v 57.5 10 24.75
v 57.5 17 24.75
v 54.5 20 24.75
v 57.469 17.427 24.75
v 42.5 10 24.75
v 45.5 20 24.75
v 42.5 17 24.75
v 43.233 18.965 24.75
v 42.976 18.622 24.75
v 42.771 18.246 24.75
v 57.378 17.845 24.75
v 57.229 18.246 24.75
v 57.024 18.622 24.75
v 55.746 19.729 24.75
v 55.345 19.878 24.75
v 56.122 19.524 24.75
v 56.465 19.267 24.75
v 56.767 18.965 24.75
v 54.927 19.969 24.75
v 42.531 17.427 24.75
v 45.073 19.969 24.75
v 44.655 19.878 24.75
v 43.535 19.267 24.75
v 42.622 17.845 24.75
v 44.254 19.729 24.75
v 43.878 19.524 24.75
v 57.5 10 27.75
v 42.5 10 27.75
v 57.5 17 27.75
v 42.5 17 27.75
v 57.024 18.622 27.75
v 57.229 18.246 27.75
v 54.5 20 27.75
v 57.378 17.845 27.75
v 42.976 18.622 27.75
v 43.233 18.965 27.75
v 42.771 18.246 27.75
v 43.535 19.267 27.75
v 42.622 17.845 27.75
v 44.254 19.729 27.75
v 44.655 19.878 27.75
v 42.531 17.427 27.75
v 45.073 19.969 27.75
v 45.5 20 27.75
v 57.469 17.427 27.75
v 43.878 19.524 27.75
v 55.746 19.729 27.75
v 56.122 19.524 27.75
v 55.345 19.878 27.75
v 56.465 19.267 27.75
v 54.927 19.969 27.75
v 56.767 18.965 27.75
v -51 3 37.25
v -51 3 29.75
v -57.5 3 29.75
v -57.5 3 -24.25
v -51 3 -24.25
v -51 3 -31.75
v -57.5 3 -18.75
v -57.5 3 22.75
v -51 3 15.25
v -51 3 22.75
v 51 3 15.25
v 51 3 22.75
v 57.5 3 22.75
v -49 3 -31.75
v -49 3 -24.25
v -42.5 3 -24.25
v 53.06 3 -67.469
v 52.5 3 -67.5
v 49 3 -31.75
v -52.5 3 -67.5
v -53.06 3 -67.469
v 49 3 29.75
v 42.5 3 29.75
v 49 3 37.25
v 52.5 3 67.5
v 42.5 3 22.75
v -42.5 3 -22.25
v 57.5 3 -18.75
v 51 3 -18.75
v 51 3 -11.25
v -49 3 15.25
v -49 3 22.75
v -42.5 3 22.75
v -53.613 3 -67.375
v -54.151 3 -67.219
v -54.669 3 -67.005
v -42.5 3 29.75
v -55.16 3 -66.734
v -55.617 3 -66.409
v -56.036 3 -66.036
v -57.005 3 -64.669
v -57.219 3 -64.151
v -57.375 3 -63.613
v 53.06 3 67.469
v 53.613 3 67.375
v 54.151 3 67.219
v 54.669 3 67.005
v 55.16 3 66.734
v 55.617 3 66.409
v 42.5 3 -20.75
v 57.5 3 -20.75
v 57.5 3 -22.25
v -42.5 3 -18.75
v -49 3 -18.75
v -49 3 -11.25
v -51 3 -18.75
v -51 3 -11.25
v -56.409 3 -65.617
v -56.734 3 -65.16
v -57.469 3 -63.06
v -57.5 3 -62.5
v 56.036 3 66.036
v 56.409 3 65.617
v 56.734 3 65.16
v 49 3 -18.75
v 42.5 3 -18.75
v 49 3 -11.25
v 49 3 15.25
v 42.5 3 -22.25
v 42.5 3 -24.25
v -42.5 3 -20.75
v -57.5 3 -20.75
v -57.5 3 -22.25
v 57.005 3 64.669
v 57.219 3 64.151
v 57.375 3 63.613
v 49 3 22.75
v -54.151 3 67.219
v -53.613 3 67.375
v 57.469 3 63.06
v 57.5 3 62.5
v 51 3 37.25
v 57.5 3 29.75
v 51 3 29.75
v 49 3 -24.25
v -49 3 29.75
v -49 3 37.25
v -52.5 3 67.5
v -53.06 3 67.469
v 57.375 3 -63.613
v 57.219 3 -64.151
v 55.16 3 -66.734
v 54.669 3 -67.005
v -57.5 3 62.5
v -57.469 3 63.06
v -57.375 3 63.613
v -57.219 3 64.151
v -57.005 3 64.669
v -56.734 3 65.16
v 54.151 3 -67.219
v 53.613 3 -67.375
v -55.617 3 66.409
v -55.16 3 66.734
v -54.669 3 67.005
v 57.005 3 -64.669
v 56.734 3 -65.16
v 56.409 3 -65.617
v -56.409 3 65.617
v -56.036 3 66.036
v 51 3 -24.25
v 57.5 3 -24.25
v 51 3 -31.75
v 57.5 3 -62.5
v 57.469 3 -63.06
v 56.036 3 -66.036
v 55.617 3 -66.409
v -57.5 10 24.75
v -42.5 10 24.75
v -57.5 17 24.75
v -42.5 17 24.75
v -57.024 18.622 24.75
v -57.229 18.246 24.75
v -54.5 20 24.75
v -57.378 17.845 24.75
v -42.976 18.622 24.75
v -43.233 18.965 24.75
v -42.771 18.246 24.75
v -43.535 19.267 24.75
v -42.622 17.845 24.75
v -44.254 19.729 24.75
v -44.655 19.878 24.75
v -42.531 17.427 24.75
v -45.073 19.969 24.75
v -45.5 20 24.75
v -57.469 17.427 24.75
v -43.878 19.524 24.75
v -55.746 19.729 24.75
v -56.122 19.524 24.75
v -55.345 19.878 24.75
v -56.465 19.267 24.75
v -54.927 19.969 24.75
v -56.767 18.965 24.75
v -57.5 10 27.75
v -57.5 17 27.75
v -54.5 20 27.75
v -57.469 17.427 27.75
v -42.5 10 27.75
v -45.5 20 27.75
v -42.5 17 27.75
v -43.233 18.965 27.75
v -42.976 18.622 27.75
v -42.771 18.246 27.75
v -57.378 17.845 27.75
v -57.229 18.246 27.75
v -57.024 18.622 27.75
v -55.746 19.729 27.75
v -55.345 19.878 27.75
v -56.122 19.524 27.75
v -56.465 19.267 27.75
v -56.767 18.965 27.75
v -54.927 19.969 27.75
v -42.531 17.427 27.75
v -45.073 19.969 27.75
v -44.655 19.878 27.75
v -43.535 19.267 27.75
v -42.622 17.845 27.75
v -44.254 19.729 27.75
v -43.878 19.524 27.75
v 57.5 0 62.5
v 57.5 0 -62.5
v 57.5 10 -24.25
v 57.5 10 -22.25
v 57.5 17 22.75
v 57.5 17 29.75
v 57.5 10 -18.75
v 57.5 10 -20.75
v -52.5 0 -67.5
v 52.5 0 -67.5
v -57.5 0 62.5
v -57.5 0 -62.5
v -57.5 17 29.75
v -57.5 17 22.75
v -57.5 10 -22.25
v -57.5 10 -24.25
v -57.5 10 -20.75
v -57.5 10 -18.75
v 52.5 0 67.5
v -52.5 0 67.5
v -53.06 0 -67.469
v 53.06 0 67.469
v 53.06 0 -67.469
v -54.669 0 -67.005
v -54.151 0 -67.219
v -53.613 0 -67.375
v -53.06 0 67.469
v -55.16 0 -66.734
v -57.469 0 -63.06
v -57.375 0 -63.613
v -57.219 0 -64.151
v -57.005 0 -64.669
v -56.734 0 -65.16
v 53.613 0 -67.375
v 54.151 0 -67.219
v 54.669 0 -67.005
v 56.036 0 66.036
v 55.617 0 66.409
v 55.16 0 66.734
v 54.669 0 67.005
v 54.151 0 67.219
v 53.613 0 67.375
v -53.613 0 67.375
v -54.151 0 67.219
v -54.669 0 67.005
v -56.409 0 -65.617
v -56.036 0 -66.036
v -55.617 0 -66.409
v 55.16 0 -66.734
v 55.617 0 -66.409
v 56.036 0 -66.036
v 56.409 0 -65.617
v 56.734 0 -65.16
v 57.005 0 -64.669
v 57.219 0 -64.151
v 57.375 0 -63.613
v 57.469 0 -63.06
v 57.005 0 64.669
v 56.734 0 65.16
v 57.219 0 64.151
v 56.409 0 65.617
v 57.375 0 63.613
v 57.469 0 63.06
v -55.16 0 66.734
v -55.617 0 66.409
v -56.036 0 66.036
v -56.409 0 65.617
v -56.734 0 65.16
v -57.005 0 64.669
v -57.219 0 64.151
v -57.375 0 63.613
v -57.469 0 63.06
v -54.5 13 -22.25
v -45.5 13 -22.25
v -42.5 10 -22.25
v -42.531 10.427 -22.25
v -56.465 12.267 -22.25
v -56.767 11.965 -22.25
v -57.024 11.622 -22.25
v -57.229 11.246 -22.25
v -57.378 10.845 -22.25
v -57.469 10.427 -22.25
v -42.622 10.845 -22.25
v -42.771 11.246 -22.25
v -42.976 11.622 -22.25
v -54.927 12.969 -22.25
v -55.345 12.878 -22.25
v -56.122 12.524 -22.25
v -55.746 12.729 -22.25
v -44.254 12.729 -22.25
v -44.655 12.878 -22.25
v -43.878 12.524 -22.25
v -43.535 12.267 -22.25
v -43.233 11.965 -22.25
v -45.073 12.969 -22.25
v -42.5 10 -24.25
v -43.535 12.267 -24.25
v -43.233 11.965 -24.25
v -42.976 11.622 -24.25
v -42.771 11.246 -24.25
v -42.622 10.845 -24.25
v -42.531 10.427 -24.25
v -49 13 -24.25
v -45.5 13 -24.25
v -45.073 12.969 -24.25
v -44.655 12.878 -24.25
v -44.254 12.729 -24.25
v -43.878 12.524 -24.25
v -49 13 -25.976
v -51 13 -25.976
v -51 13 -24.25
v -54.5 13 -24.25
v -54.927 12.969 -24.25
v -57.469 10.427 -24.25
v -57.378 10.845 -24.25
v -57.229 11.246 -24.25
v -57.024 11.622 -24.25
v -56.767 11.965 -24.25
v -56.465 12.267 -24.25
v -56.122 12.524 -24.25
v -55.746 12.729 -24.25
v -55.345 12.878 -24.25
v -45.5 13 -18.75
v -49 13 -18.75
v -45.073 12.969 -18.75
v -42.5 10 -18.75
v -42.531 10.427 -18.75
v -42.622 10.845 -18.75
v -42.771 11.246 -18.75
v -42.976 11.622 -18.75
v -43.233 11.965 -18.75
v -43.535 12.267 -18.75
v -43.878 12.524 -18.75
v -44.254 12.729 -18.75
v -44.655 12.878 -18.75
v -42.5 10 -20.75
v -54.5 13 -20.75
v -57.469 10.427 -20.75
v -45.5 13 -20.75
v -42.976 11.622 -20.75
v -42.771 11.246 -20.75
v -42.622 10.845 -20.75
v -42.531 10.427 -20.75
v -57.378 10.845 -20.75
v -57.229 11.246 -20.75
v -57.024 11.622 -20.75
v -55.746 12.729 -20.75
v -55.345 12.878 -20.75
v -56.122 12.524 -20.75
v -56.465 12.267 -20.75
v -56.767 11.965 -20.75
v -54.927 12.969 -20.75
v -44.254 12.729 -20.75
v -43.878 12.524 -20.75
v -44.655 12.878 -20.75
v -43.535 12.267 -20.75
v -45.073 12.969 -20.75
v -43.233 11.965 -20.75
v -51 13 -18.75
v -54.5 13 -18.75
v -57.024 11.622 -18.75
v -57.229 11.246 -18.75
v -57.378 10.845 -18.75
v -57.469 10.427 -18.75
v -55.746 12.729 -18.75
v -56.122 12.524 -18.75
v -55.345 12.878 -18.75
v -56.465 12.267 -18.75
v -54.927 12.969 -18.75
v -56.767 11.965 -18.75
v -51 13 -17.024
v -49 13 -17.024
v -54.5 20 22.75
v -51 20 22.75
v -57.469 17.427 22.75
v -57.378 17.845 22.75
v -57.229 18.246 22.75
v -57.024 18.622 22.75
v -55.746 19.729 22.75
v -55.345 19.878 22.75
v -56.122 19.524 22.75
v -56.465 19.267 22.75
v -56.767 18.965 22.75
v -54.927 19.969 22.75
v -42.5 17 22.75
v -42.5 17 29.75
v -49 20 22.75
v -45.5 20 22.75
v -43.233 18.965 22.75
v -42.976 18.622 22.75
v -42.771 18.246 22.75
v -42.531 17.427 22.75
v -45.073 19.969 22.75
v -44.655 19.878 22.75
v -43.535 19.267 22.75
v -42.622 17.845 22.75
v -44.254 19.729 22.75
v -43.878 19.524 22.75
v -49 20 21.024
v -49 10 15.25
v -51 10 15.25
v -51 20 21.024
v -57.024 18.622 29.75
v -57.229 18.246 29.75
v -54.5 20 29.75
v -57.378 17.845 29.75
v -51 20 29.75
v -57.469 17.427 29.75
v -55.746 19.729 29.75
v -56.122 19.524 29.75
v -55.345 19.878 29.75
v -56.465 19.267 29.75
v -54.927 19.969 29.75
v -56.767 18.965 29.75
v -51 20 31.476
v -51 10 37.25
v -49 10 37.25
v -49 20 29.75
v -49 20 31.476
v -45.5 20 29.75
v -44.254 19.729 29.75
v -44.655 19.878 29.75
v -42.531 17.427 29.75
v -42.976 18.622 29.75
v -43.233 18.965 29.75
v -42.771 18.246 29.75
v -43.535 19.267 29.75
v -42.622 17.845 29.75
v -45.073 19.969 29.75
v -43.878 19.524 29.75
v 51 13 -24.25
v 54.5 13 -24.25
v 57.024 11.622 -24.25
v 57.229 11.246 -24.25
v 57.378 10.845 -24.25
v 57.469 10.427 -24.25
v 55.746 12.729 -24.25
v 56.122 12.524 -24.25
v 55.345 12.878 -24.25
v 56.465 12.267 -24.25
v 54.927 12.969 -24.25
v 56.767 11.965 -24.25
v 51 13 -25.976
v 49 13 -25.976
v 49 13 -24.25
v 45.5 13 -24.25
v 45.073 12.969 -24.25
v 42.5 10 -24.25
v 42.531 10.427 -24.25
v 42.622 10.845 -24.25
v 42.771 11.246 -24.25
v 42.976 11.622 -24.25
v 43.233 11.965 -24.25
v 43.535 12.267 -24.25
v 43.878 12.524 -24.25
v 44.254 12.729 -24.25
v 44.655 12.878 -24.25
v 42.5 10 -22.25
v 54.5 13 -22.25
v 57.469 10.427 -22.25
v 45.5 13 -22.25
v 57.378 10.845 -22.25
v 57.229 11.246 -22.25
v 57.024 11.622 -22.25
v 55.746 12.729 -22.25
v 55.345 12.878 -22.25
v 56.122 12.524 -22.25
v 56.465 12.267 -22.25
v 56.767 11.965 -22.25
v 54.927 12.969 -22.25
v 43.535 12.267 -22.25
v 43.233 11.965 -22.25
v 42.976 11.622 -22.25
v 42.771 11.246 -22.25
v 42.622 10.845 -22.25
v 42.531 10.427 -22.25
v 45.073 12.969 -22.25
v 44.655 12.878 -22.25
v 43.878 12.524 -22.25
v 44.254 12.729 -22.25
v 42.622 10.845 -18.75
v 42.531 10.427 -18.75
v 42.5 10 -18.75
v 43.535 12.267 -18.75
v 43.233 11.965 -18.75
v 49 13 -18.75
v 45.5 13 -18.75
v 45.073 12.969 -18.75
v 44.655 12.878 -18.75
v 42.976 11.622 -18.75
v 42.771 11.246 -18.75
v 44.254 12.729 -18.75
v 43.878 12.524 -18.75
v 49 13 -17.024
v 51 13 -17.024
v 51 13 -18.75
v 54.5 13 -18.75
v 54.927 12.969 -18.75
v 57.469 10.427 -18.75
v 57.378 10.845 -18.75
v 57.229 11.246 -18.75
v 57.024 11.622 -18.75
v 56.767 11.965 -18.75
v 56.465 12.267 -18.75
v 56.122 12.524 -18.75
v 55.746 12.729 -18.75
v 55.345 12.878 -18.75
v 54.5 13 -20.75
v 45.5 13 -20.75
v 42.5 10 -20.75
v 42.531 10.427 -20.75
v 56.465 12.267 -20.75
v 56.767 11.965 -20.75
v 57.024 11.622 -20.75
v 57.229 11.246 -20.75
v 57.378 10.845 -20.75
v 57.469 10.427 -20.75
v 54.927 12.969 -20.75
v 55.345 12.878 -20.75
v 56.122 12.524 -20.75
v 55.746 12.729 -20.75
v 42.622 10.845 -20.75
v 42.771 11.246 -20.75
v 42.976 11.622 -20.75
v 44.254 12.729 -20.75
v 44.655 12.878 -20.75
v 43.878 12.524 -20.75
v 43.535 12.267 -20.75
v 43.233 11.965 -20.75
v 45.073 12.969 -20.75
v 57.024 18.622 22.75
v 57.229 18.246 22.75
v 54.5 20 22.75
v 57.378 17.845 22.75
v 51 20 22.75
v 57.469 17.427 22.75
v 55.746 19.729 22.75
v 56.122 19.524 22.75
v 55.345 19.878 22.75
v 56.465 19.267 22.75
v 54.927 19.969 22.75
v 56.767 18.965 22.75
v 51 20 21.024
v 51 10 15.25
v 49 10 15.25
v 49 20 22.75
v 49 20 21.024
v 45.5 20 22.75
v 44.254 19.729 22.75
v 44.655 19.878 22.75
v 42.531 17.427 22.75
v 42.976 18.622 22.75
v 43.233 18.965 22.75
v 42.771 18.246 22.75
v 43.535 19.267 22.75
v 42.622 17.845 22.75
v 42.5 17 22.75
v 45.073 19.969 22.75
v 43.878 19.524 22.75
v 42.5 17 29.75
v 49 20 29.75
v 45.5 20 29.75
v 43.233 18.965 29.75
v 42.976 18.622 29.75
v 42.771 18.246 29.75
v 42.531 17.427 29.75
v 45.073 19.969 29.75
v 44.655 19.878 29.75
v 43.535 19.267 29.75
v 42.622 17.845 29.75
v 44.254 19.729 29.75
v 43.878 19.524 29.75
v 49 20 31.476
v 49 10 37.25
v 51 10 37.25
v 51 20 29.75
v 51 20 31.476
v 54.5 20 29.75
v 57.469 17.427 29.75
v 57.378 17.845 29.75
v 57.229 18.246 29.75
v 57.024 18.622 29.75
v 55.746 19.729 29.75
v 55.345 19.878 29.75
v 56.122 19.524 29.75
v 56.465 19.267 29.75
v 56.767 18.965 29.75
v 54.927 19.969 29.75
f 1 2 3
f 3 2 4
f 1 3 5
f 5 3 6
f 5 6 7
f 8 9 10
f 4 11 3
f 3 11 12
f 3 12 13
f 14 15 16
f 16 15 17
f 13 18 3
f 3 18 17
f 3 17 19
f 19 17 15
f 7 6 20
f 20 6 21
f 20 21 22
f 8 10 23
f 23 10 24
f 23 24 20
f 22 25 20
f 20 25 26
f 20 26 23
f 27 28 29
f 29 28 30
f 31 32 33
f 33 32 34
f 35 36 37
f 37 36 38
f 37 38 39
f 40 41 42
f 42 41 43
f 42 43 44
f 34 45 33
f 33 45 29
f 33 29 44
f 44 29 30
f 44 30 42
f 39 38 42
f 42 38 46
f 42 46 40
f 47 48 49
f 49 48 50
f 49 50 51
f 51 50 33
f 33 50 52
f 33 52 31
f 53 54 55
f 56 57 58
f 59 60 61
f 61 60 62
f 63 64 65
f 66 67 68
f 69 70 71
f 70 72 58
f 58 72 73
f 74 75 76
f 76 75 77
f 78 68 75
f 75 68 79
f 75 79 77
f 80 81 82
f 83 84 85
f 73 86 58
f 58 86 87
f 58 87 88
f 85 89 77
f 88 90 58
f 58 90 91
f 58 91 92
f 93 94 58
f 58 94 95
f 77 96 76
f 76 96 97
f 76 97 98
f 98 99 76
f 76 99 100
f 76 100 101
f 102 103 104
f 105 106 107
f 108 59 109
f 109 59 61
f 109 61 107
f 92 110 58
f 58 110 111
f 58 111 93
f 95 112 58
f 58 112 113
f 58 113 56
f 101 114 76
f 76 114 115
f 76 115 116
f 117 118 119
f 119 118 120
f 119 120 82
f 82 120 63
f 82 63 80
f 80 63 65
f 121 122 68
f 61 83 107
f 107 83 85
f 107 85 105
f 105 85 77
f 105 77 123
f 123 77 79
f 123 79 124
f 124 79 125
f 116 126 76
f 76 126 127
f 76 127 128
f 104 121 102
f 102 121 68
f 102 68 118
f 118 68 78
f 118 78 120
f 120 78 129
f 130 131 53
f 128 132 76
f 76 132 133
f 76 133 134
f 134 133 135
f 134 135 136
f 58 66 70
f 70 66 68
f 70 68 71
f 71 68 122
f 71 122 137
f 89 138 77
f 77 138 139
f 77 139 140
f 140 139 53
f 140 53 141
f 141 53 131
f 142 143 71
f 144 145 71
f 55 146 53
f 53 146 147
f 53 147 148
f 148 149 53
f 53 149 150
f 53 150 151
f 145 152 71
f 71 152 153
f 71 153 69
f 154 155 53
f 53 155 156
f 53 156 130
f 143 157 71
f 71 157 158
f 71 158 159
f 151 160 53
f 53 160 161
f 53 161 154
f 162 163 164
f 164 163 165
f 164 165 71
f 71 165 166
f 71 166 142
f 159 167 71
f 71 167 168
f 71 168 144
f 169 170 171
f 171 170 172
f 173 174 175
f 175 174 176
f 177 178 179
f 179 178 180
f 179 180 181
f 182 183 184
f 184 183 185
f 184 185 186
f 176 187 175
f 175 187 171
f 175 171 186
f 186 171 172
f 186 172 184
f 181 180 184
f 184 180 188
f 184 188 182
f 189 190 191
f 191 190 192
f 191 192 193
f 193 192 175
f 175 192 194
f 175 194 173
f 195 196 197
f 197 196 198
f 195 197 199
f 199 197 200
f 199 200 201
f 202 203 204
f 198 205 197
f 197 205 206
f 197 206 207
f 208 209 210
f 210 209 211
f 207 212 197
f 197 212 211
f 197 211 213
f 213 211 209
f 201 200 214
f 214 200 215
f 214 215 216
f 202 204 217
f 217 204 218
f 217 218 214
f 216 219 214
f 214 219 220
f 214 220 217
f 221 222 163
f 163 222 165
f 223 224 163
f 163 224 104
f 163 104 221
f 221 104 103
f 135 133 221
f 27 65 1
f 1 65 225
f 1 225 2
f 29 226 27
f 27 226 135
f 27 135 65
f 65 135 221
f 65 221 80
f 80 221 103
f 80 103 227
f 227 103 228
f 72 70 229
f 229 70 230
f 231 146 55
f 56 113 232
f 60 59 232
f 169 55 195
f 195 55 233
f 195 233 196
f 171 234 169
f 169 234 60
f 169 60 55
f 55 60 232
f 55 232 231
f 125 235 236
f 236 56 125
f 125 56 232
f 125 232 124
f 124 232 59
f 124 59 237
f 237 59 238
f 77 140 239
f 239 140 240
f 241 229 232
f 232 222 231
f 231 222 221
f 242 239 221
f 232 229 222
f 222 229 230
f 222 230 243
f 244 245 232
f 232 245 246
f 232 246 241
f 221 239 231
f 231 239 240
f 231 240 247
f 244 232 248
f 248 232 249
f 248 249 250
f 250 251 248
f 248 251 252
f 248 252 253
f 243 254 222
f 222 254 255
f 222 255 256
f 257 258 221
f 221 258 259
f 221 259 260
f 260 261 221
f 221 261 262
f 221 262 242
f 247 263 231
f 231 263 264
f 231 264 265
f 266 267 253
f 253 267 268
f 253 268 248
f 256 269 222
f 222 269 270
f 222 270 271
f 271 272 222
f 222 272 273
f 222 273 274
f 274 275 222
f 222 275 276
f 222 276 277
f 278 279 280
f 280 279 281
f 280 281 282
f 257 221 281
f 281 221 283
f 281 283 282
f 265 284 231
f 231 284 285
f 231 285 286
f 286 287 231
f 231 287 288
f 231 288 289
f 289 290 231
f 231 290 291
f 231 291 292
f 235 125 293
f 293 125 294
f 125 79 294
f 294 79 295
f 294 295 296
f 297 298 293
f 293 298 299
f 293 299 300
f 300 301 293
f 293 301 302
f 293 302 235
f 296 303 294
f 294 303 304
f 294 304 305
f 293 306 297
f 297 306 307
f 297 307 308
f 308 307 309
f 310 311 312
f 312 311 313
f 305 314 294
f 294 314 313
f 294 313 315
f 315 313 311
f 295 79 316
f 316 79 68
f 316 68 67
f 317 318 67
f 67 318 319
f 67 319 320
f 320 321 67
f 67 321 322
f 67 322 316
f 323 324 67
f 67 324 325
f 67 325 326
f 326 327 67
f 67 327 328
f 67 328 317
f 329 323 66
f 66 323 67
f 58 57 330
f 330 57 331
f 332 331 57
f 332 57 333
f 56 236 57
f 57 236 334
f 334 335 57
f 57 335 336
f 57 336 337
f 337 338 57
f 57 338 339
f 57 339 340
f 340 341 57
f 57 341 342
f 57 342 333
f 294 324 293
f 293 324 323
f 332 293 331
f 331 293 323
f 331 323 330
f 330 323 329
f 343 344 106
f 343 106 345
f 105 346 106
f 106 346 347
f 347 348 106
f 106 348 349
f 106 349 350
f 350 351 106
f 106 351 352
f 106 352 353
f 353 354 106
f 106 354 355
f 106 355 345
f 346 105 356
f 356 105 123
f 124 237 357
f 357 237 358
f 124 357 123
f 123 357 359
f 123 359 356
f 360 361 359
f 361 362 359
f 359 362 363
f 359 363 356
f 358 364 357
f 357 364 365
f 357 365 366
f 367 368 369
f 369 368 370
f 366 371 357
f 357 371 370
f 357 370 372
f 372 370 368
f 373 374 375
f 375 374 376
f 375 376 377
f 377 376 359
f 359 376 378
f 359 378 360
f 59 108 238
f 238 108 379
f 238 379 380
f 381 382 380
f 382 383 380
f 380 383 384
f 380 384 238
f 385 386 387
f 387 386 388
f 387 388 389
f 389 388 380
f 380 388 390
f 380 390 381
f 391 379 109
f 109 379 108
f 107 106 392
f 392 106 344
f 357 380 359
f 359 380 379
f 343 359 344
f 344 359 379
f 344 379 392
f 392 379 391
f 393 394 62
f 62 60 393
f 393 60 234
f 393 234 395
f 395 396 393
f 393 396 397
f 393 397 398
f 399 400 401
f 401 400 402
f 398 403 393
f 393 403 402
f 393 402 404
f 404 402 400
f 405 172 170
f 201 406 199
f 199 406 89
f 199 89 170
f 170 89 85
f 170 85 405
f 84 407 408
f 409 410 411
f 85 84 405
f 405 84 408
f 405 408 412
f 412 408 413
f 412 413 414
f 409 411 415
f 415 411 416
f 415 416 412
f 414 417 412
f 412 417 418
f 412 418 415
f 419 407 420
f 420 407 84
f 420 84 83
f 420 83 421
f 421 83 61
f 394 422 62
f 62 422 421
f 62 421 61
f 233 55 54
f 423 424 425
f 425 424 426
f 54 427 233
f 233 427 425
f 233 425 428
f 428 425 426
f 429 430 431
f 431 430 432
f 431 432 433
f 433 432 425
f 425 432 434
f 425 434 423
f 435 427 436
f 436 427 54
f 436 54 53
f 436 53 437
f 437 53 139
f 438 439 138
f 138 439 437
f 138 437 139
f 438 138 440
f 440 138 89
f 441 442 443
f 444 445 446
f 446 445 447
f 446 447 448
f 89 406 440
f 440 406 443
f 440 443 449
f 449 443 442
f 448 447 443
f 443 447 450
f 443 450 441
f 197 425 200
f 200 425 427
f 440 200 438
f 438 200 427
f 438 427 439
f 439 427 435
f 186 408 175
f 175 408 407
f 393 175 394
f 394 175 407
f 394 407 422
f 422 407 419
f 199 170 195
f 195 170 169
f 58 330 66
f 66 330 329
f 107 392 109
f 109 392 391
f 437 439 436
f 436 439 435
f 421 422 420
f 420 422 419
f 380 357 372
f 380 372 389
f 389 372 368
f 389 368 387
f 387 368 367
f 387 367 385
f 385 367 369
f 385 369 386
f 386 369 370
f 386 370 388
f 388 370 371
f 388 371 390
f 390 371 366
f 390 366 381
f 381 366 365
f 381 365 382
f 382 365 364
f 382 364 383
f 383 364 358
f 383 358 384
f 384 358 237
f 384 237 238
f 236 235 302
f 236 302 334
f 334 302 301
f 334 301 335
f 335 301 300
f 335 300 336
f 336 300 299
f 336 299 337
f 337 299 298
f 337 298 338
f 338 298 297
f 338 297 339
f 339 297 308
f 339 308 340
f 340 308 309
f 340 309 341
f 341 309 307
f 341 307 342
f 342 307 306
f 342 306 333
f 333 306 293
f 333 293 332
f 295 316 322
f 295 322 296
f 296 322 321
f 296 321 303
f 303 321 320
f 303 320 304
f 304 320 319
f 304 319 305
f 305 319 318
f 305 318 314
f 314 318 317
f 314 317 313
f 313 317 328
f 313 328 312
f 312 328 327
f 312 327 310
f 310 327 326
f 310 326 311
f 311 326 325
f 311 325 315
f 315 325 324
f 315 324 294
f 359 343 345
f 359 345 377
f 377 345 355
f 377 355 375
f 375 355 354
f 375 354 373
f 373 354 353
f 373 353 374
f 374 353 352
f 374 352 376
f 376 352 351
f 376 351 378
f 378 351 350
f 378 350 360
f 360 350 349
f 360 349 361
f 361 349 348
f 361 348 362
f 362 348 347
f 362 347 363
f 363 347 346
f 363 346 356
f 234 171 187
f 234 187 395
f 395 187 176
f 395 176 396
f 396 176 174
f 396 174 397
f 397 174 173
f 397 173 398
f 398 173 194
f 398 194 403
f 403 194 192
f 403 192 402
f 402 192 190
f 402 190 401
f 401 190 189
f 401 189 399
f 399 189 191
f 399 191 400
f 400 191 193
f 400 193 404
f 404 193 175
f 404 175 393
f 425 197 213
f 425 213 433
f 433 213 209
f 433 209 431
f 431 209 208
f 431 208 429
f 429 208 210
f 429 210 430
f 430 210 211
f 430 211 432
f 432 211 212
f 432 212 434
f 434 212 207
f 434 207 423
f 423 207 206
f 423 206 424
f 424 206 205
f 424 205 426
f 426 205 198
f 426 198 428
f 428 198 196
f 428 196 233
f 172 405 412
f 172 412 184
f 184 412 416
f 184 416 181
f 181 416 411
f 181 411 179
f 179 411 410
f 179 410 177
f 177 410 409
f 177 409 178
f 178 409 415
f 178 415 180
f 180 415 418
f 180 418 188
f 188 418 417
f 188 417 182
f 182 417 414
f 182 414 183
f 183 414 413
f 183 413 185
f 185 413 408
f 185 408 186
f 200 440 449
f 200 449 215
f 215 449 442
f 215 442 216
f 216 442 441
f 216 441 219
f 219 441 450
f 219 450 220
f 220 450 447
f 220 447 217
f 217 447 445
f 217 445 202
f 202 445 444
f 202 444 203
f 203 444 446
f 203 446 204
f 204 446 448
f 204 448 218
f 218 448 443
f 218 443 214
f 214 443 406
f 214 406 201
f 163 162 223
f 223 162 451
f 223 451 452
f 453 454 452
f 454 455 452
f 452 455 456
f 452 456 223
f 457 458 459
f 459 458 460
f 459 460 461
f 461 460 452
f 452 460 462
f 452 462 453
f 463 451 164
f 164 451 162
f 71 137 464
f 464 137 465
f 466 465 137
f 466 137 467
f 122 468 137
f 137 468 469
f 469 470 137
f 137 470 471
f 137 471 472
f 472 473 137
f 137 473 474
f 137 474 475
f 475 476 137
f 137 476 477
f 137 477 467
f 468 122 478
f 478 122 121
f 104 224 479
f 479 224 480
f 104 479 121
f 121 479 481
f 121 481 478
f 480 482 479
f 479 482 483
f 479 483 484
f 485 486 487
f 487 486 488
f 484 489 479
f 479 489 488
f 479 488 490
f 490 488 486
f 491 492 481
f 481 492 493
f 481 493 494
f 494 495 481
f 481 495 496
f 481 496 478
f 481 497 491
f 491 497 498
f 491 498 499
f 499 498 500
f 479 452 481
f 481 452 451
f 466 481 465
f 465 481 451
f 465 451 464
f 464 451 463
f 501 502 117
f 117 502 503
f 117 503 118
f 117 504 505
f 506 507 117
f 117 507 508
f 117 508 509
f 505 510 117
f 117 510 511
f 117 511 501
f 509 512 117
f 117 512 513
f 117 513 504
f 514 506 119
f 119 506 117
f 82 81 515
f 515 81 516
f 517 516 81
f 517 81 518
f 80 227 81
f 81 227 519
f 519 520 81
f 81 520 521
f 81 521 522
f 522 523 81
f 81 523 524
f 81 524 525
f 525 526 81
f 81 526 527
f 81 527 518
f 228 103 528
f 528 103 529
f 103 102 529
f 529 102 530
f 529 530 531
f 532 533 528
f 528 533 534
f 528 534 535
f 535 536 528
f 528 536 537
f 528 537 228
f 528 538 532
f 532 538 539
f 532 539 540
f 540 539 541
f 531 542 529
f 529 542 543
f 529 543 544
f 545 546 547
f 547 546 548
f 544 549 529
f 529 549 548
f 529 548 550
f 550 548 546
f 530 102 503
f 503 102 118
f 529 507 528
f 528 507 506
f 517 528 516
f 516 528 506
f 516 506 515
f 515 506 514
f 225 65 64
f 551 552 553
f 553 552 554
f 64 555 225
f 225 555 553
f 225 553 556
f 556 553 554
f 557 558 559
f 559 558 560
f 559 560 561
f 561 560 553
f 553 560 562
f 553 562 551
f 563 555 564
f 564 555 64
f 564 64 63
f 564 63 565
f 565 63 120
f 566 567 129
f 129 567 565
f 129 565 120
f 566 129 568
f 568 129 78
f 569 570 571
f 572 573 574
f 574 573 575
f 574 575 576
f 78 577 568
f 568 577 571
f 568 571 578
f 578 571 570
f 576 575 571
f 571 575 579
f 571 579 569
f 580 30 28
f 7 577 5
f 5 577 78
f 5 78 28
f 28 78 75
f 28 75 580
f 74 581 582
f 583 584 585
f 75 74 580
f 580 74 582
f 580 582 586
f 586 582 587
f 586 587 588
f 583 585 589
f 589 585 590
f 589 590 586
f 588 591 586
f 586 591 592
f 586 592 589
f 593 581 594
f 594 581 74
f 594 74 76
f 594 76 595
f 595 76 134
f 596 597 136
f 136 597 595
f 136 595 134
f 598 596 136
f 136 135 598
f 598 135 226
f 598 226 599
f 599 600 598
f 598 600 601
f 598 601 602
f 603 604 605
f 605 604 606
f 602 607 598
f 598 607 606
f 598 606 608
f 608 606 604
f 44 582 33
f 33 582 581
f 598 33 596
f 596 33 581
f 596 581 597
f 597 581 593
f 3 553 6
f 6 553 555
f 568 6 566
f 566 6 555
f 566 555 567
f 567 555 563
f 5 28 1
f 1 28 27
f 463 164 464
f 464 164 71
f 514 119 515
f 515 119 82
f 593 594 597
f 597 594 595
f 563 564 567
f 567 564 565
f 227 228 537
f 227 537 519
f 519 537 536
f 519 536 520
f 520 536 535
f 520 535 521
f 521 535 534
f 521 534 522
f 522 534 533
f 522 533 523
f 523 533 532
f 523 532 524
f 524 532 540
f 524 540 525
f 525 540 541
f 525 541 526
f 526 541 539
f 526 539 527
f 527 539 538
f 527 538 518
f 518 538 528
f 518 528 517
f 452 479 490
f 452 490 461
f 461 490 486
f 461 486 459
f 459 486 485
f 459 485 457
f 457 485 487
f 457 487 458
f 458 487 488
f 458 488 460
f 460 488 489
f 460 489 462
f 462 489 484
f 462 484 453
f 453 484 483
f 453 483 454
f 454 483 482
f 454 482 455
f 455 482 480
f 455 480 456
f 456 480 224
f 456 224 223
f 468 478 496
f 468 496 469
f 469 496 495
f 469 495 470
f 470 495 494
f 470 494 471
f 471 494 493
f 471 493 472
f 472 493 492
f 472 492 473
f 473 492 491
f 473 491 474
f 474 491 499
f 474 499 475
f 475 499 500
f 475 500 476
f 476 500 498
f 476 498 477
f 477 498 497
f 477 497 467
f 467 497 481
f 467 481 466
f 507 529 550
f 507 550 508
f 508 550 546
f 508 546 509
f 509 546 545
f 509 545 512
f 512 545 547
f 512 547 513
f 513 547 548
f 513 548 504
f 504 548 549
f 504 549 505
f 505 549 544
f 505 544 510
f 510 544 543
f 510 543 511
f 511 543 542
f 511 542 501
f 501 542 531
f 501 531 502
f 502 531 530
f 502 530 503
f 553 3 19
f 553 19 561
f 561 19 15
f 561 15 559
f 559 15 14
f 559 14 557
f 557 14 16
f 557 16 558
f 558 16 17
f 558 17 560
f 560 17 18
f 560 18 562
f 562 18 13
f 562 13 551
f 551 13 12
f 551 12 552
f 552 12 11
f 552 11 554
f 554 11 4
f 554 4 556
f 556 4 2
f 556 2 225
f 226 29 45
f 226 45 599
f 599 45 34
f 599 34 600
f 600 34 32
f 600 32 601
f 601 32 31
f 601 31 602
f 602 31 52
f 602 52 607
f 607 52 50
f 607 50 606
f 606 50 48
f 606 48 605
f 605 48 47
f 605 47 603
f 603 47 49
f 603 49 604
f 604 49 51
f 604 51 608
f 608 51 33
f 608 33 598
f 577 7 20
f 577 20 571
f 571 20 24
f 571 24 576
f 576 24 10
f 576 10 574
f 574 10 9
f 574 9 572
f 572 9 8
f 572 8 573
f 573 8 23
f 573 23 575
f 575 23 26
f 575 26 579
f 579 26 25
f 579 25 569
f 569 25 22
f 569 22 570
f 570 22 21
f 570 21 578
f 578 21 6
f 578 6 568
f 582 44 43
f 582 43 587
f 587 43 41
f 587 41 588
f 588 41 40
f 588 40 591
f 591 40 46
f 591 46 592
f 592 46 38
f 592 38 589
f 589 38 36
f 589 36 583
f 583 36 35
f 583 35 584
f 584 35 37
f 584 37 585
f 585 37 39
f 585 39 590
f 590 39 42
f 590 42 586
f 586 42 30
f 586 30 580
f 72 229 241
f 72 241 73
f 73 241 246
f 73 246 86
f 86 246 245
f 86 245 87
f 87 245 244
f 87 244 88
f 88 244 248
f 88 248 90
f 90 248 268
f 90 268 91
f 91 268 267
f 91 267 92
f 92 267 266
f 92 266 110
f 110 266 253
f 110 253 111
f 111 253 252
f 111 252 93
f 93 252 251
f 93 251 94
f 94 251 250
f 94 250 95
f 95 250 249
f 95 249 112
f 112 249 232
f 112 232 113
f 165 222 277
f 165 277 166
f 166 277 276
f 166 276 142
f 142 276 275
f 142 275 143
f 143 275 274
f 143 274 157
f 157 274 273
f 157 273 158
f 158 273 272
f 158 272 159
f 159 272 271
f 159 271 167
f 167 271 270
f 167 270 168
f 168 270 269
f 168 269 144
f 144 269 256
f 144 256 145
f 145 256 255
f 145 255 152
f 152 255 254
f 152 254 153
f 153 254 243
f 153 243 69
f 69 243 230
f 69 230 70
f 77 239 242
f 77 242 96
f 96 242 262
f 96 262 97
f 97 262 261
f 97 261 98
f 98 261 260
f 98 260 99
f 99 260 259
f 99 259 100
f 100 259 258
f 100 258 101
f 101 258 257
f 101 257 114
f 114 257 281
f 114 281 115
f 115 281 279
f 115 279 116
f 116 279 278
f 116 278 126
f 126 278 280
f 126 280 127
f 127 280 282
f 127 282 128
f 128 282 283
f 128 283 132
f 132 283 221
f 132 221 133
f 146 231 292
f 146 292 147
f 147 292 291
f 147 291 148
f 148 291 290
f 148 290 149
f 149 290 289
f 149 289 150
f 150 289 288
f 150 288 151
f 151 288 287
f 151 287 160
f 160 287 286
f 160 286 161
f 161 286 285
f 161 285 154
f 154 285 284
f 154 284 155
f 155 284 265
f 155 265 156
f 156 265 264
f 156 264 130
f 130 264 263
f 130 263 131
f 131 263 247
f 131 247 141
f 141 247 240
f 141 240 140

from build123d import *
from OCP.BRepFilletAPI import BRepFilletAPI_MakeChamfer

# Parameters (mm, degrees)
ESQUISSE1_W                    = 115
ESQUISSE1_H                    = 135
BOSS_EXTRU_1_DEPTH             = 3
BOSS_EXTRU_2_DEPTH             = 10
BOSS_EXTRU_3_DEPTH             = 7
ESQUISSE5_W                    = 15
ESQUISSE5_H                    = 3
BOSS_EXTRU_4_DEPTH             = 7
CHANFREIN1_SIZE                = 5.773502692
CHANFREIN1_SIZE_2              = 10
CONG_1_R                       = 3
CHANFREIN1_OF_SYM_TRIE1_SIZE   = 5.773502692
CHANFREIN1_OF_SYM_TRIE1_SIZE_2 = 10
CONG_1_OF_SYM_TRIE1_R          = 3
CONG_2_R                       = 5


with BuildPart() as part:
    # Esquisse1 → Boss.-Extru.1 (new body)
    with BuildSketch(Plane(origin=(0, 0, 0), x_dir=(1, 0, 0), z_dir=(0, 1, 0))):
        Rectangle(ESQUISSE1_W, ESQUISSE1_H)
    extrude(amount=BOSS_EXTRU_1_DEPTH)

    # Esquisse2 → Boss.-Extru.2 (add)
    with BuildSketch(Plane(origin=(0, 3, 0), x_dir=(1, 0, 0), z_dir=(0, 1, 0))):
        Polygon((-57.5, 24.25), (-51, 24.25), (-51, 31.75), (-49, 31.75), (-49, 24.25), (-42.5, 24.25), (-42.5, 22.25), (-57.5, 22.25), align=None)
        Polygon((-42.5, 18.75), (-42.5, 20.75), (-57.5, 20.75), (-57.5, 18.75), (-51, 18.75), (-51, 11.25), (-49, 11.25), (-49, 18.75), align=None)
        Polygon((-51, -22.75), (-51, -15.25), (-49, -15.25), (-49, -22.75), (-42.5, -22.75), (-42.5, -24.75), (-57.5, -24.75), (-57.5, -22.75), align=None)
        Polygon((-57.5, -29.75), (-51, -29.75), (-51, -37.25), (-49, -37.25), (-49, -29.75), (-42.5, -29.75), (-42.5, -27.75), (-57.5, -27.75), align=None)
    boss_extru_2 = extrude(amount=BOSS_EXTRU_2_DEPTH)

    # Esquisse4 → Boss.-Extru.3 (add)
    with BuildSketch(Plane(origin=(0, 13, 0), x_dir=(1, 0, 0), z_dir=(0, 1, 0))):
        Polygon((-57.5, -27.75), (-57.5, -29.75), (-51, -29.75), (-51, -37.25), (-49, -37.25), (-49, -29.75), (-42.5, -29.75), (-42.5, -27.75), align=None)
        Polygon((-51, -22.75), (-57.5, -22.75), (-57.5, -24.75), (-42.5, -24.75), (-42.5, -22.75), (-49, -22.75), (-49, -15.25), (-51, -15.25), align=None)
    boss_extru_3 = extrude(amount=BOSS_EXTRU_3_DEPTH)

    # Esquisse5 → Boss.-Extru.4 (add)
    with BuildSketch(Plane(origin=(0, 3, 0), x_dir=(1, 0, 0), z_dir=(0, 1, 0))):
        with Locations((-50, -26.25)):
            Rectangle(ESQUISSE5_W, ESQUISSE5_H)
    boss_extru_4 = extrude(amount=BOSS_EXTRU_4_DEPTH)

    # Chanfrein1
    chanfrein1_edges_1 = [part.edges().sort_by_distance(p)[0] for p in [
        (-50, 13, -31.75),
    ]]
    chanfrein1_side_1 = [part.faces().sort_by_distance(p)[0] for p in [
        (-50, 13, -31.634529946),
    ]]
    chanfrein1_edges_2 = [part.edges().sort_by_distance(p)[0] for p in [
        (-50, 13, -11.25),
    ]]
    chanfrein1_side_2 = [part.faces().sort_by_distance(p)[0] for p in [
        (-50, 13, -11.365470054),
    ]]
    chanfrein1_edges_3 = [part.edges().sort_by_distance(p)[0] for p in [
        (-50, 20, 37.25),
    ]]
    chanfrein1_side_3 = [part.faces().sort_by_distance(p)[0] for p in [
        (-50, 20, 37.134529946),
    ]]
    chanfrein1_edges_4 = [part.edges().sort_by_distance(p)[0] for p in [
        (-50, 20, 15.25),
    ]]
    chanfrein1_side_4 = [part.faces().sort_by_distance(p)[0] for p in [
        (-50, 20, 15.365470054),
    ]]
    chanfrein1 = BRepFilletAPI_MakeChamfer(part.part.solid().wrapped)
    for e in chanfrein1_edges_1:
        chanfrein1.Add(CHANFREIN1_SIZE - 0.0001, CHANFREIN1_SIZE_2 - 0.0001, e.wrapped, chanfrein1_side_1[0].wrapped)
    for e in chanfrein1_edges_2:
        chanfrein1.Add(CHANFREIN1_SIZE - 0.0001, CHANFREIN1_SIZE_2 - 0.0001, e.wrapped, chanfrein1_side_2[0].wrapped)
    for e in chanfrein1_edges_3:
        chanfrein1.Add(CHANFREIN1_SIZE - 0.0001, CHANFREIN1_SIZE_2 - 0.0001, e.wrapped, chanfrein1_side_3[0].wrapped)
    for e in chanfrein1_edges_4:
        chanfrein1.Add(CHANFREIN1_SIZE - 0.0001, CHANFREIN1_SIZE_2 - 0.0001, e.wrapped, chanfrein1_side_4[0].wrapped)
    add(Compound.cast(chanfrein1.Shape()), mode=Mode.REPLACE)  # a hair under: the kernel refuses the full size

    # Congé1
    cong_1_edges = [part.edges().sort_by_distance(p)[0] for p in [
        (-57.5, 20, 28.75),
        (-42.5, 20, 28.75),
        (-57.5, 20, 23.75),
        (-42.5, 20, 23.75),
        (-57.5, 13, -23.25),
        (-42.5, 13, -23.25),
        (-42.5, 13, -19.75),
        (-57.5, 13, -19.75),
    ]]
    fillet(cong_1_edges, radius=CONG_1_R)

    # Symétrie1: Boss.-Extru.2, Boss.-Extru.3, Boss.-Extru.4 across plane
    add(boss_extru_2.mirror(Plane(origin=(0, 0, 0), x_dir=(0, 0, 1), z_dir=(1, 0, 0))))
    add(boss_extru_3.mirror(Plane(origin=(0, 0, 0), x_dir=(0, 0, 1), z_dir=(1, 0, 0))))
    add(boss_extru_4.mirror(Plane(origin=(0, 0, 0), x_dir=(0, 0, 1), z_dir=(1, 0, 0))))

    # Chanfrein1 of Symétrie1
    chanfrein1_of_sym_trie1_edges_1 = [part.edges().sort_by_distance(p)[0] for p in [
        (50, 13, -31.75),
    ]]
    chanfrein1_of_sym_trie1_side_1 = [part.faces().sort_by_distance(p)[0] for p in [
        (50, 13, -31.634529946),
    ]]
    chanfrein1_of_sym_trie1_edges_2 = [part.edges().sort_by_distance(p)[0] for p in [
        (50, 13, -11.25),
    ]]
    chanfrein1_of_sym_trie1_side_2 = [part.faces().sort_by_distance(p)[0] for p in [
        (50, 13, -11.365470054),
    ]]
    chanfrein1_of_sym_trie1_edges_3 = [part.edges().sort_by_distance(p)[0] for p in [
        (50, 20, 37.25),
    ]]
    chanfrein1_of_sym_trie1_side_3 = [part.faces().sort_by_distance(p)[0] for p in [
        (50, 20, 37.134529946),
    ]]
    chanfrein1_of_sym_trie1_edges_4 = [part.edges().sort_by_distance(p)[0] for p in [
        (50, 20, 15.25),
    ]]
    chanfrein1_of_sym_trie1_side_4 = [part.faces().sort_by_distance(p)[0] for p in [
        (50, 20, 15.365470054),
    ]]
    chanfrein1_of_sym_trie1 = BRepFilletAPI_MakeChamfer(part.part.solid().wrapped)
    for e in chanfrein1_of_sym_trie1_edges_1:
        chanfrein1_of_sym_trie1.Add(CHANFREIN1_OF_SYM_TRIE1_SIZE - 0.0001, CHANFREIN1_OF_SYM_TRIE1_SIZE_2 - 0.0001, e.wrapped, chanfrein1_of_sym_trie1_side_1[0].wrapped)
    for e in chanfrein1_of_sym_trie1_edges_2:
        chanfrein1_of_sym_trie1.Add(CHANFREIN1_OF_SYM_TRIE1_SIZE - 0.0001, CHANFREIN1_OF_SYM_TRIE1_SIZE_2 - 0.0001, e.wrapped, chanfrein1_of_sym_trie1_side_2[0].wrapped)
    for e in chanfrein1_of_sym_trie1_edges_3:
        chanfrein1_of_sym_trie1.Add(CHANFREIN1_OF_SYM_TRIE1_SIZE - 0.0001, CHANFREIN1_OF_SYM_TRIE1_SIZE_2 - 0.0001, e.wrapped, chanfrein1_of_sym_trie1_side_3[0].wrapped)
    for e in chanfrein1_of_sym_trie1_edges_4:
        chanfrein1_of_sym_trie1.Add(CHANFREIN1_OF_SYM_TRIE1_SIZE - 0.0001, CHANFREIN1_OF_SYM_TRIE1_SIZE_2 - 0.0001, e.wrapped, chanfrein1_of_sym_trie1_side_4[0].wrapped)
    add(Compound.cast(chanfrein1_of_sym_trie1.Shape()), mode=Mode.REPLACE)  # a hair under: the kernel refuses the full size

    # Congé1 of Symétrie1
    cong_1_of_sym_trie1_edges = [part.edges().sort_by_distance(p)[0] for p in [
        (57.5, 20, 28.75),
        (42.5, 20, 28.75),
        (57.5, 20, 23.75),
        (42.5, 20, 23.75),
        (57.5, 13, -23.25),
        (42.5, 13, -23.25),
        (42.5, 13, -19.75),
        (57.5, 13, -19.75),
    ]]
    fillet(cong_1_of_sym_trie1_edges, radius=CONG_1_OF_SYM_TRIE1_R)

    # Congé2
    cong_2_edges = [part.edges().sort_by_distance(p)[0] for p in [
        (57.5, 1.5, 67.5),
        (-57.5, 1.5, 67.5),
        (-57.5, 1.5, -67.5),
        (57.5, 1.5, -67.5),
    ]]
    fillet(cong_2_edges, radius=CONG_2_R)


solid = part.part
